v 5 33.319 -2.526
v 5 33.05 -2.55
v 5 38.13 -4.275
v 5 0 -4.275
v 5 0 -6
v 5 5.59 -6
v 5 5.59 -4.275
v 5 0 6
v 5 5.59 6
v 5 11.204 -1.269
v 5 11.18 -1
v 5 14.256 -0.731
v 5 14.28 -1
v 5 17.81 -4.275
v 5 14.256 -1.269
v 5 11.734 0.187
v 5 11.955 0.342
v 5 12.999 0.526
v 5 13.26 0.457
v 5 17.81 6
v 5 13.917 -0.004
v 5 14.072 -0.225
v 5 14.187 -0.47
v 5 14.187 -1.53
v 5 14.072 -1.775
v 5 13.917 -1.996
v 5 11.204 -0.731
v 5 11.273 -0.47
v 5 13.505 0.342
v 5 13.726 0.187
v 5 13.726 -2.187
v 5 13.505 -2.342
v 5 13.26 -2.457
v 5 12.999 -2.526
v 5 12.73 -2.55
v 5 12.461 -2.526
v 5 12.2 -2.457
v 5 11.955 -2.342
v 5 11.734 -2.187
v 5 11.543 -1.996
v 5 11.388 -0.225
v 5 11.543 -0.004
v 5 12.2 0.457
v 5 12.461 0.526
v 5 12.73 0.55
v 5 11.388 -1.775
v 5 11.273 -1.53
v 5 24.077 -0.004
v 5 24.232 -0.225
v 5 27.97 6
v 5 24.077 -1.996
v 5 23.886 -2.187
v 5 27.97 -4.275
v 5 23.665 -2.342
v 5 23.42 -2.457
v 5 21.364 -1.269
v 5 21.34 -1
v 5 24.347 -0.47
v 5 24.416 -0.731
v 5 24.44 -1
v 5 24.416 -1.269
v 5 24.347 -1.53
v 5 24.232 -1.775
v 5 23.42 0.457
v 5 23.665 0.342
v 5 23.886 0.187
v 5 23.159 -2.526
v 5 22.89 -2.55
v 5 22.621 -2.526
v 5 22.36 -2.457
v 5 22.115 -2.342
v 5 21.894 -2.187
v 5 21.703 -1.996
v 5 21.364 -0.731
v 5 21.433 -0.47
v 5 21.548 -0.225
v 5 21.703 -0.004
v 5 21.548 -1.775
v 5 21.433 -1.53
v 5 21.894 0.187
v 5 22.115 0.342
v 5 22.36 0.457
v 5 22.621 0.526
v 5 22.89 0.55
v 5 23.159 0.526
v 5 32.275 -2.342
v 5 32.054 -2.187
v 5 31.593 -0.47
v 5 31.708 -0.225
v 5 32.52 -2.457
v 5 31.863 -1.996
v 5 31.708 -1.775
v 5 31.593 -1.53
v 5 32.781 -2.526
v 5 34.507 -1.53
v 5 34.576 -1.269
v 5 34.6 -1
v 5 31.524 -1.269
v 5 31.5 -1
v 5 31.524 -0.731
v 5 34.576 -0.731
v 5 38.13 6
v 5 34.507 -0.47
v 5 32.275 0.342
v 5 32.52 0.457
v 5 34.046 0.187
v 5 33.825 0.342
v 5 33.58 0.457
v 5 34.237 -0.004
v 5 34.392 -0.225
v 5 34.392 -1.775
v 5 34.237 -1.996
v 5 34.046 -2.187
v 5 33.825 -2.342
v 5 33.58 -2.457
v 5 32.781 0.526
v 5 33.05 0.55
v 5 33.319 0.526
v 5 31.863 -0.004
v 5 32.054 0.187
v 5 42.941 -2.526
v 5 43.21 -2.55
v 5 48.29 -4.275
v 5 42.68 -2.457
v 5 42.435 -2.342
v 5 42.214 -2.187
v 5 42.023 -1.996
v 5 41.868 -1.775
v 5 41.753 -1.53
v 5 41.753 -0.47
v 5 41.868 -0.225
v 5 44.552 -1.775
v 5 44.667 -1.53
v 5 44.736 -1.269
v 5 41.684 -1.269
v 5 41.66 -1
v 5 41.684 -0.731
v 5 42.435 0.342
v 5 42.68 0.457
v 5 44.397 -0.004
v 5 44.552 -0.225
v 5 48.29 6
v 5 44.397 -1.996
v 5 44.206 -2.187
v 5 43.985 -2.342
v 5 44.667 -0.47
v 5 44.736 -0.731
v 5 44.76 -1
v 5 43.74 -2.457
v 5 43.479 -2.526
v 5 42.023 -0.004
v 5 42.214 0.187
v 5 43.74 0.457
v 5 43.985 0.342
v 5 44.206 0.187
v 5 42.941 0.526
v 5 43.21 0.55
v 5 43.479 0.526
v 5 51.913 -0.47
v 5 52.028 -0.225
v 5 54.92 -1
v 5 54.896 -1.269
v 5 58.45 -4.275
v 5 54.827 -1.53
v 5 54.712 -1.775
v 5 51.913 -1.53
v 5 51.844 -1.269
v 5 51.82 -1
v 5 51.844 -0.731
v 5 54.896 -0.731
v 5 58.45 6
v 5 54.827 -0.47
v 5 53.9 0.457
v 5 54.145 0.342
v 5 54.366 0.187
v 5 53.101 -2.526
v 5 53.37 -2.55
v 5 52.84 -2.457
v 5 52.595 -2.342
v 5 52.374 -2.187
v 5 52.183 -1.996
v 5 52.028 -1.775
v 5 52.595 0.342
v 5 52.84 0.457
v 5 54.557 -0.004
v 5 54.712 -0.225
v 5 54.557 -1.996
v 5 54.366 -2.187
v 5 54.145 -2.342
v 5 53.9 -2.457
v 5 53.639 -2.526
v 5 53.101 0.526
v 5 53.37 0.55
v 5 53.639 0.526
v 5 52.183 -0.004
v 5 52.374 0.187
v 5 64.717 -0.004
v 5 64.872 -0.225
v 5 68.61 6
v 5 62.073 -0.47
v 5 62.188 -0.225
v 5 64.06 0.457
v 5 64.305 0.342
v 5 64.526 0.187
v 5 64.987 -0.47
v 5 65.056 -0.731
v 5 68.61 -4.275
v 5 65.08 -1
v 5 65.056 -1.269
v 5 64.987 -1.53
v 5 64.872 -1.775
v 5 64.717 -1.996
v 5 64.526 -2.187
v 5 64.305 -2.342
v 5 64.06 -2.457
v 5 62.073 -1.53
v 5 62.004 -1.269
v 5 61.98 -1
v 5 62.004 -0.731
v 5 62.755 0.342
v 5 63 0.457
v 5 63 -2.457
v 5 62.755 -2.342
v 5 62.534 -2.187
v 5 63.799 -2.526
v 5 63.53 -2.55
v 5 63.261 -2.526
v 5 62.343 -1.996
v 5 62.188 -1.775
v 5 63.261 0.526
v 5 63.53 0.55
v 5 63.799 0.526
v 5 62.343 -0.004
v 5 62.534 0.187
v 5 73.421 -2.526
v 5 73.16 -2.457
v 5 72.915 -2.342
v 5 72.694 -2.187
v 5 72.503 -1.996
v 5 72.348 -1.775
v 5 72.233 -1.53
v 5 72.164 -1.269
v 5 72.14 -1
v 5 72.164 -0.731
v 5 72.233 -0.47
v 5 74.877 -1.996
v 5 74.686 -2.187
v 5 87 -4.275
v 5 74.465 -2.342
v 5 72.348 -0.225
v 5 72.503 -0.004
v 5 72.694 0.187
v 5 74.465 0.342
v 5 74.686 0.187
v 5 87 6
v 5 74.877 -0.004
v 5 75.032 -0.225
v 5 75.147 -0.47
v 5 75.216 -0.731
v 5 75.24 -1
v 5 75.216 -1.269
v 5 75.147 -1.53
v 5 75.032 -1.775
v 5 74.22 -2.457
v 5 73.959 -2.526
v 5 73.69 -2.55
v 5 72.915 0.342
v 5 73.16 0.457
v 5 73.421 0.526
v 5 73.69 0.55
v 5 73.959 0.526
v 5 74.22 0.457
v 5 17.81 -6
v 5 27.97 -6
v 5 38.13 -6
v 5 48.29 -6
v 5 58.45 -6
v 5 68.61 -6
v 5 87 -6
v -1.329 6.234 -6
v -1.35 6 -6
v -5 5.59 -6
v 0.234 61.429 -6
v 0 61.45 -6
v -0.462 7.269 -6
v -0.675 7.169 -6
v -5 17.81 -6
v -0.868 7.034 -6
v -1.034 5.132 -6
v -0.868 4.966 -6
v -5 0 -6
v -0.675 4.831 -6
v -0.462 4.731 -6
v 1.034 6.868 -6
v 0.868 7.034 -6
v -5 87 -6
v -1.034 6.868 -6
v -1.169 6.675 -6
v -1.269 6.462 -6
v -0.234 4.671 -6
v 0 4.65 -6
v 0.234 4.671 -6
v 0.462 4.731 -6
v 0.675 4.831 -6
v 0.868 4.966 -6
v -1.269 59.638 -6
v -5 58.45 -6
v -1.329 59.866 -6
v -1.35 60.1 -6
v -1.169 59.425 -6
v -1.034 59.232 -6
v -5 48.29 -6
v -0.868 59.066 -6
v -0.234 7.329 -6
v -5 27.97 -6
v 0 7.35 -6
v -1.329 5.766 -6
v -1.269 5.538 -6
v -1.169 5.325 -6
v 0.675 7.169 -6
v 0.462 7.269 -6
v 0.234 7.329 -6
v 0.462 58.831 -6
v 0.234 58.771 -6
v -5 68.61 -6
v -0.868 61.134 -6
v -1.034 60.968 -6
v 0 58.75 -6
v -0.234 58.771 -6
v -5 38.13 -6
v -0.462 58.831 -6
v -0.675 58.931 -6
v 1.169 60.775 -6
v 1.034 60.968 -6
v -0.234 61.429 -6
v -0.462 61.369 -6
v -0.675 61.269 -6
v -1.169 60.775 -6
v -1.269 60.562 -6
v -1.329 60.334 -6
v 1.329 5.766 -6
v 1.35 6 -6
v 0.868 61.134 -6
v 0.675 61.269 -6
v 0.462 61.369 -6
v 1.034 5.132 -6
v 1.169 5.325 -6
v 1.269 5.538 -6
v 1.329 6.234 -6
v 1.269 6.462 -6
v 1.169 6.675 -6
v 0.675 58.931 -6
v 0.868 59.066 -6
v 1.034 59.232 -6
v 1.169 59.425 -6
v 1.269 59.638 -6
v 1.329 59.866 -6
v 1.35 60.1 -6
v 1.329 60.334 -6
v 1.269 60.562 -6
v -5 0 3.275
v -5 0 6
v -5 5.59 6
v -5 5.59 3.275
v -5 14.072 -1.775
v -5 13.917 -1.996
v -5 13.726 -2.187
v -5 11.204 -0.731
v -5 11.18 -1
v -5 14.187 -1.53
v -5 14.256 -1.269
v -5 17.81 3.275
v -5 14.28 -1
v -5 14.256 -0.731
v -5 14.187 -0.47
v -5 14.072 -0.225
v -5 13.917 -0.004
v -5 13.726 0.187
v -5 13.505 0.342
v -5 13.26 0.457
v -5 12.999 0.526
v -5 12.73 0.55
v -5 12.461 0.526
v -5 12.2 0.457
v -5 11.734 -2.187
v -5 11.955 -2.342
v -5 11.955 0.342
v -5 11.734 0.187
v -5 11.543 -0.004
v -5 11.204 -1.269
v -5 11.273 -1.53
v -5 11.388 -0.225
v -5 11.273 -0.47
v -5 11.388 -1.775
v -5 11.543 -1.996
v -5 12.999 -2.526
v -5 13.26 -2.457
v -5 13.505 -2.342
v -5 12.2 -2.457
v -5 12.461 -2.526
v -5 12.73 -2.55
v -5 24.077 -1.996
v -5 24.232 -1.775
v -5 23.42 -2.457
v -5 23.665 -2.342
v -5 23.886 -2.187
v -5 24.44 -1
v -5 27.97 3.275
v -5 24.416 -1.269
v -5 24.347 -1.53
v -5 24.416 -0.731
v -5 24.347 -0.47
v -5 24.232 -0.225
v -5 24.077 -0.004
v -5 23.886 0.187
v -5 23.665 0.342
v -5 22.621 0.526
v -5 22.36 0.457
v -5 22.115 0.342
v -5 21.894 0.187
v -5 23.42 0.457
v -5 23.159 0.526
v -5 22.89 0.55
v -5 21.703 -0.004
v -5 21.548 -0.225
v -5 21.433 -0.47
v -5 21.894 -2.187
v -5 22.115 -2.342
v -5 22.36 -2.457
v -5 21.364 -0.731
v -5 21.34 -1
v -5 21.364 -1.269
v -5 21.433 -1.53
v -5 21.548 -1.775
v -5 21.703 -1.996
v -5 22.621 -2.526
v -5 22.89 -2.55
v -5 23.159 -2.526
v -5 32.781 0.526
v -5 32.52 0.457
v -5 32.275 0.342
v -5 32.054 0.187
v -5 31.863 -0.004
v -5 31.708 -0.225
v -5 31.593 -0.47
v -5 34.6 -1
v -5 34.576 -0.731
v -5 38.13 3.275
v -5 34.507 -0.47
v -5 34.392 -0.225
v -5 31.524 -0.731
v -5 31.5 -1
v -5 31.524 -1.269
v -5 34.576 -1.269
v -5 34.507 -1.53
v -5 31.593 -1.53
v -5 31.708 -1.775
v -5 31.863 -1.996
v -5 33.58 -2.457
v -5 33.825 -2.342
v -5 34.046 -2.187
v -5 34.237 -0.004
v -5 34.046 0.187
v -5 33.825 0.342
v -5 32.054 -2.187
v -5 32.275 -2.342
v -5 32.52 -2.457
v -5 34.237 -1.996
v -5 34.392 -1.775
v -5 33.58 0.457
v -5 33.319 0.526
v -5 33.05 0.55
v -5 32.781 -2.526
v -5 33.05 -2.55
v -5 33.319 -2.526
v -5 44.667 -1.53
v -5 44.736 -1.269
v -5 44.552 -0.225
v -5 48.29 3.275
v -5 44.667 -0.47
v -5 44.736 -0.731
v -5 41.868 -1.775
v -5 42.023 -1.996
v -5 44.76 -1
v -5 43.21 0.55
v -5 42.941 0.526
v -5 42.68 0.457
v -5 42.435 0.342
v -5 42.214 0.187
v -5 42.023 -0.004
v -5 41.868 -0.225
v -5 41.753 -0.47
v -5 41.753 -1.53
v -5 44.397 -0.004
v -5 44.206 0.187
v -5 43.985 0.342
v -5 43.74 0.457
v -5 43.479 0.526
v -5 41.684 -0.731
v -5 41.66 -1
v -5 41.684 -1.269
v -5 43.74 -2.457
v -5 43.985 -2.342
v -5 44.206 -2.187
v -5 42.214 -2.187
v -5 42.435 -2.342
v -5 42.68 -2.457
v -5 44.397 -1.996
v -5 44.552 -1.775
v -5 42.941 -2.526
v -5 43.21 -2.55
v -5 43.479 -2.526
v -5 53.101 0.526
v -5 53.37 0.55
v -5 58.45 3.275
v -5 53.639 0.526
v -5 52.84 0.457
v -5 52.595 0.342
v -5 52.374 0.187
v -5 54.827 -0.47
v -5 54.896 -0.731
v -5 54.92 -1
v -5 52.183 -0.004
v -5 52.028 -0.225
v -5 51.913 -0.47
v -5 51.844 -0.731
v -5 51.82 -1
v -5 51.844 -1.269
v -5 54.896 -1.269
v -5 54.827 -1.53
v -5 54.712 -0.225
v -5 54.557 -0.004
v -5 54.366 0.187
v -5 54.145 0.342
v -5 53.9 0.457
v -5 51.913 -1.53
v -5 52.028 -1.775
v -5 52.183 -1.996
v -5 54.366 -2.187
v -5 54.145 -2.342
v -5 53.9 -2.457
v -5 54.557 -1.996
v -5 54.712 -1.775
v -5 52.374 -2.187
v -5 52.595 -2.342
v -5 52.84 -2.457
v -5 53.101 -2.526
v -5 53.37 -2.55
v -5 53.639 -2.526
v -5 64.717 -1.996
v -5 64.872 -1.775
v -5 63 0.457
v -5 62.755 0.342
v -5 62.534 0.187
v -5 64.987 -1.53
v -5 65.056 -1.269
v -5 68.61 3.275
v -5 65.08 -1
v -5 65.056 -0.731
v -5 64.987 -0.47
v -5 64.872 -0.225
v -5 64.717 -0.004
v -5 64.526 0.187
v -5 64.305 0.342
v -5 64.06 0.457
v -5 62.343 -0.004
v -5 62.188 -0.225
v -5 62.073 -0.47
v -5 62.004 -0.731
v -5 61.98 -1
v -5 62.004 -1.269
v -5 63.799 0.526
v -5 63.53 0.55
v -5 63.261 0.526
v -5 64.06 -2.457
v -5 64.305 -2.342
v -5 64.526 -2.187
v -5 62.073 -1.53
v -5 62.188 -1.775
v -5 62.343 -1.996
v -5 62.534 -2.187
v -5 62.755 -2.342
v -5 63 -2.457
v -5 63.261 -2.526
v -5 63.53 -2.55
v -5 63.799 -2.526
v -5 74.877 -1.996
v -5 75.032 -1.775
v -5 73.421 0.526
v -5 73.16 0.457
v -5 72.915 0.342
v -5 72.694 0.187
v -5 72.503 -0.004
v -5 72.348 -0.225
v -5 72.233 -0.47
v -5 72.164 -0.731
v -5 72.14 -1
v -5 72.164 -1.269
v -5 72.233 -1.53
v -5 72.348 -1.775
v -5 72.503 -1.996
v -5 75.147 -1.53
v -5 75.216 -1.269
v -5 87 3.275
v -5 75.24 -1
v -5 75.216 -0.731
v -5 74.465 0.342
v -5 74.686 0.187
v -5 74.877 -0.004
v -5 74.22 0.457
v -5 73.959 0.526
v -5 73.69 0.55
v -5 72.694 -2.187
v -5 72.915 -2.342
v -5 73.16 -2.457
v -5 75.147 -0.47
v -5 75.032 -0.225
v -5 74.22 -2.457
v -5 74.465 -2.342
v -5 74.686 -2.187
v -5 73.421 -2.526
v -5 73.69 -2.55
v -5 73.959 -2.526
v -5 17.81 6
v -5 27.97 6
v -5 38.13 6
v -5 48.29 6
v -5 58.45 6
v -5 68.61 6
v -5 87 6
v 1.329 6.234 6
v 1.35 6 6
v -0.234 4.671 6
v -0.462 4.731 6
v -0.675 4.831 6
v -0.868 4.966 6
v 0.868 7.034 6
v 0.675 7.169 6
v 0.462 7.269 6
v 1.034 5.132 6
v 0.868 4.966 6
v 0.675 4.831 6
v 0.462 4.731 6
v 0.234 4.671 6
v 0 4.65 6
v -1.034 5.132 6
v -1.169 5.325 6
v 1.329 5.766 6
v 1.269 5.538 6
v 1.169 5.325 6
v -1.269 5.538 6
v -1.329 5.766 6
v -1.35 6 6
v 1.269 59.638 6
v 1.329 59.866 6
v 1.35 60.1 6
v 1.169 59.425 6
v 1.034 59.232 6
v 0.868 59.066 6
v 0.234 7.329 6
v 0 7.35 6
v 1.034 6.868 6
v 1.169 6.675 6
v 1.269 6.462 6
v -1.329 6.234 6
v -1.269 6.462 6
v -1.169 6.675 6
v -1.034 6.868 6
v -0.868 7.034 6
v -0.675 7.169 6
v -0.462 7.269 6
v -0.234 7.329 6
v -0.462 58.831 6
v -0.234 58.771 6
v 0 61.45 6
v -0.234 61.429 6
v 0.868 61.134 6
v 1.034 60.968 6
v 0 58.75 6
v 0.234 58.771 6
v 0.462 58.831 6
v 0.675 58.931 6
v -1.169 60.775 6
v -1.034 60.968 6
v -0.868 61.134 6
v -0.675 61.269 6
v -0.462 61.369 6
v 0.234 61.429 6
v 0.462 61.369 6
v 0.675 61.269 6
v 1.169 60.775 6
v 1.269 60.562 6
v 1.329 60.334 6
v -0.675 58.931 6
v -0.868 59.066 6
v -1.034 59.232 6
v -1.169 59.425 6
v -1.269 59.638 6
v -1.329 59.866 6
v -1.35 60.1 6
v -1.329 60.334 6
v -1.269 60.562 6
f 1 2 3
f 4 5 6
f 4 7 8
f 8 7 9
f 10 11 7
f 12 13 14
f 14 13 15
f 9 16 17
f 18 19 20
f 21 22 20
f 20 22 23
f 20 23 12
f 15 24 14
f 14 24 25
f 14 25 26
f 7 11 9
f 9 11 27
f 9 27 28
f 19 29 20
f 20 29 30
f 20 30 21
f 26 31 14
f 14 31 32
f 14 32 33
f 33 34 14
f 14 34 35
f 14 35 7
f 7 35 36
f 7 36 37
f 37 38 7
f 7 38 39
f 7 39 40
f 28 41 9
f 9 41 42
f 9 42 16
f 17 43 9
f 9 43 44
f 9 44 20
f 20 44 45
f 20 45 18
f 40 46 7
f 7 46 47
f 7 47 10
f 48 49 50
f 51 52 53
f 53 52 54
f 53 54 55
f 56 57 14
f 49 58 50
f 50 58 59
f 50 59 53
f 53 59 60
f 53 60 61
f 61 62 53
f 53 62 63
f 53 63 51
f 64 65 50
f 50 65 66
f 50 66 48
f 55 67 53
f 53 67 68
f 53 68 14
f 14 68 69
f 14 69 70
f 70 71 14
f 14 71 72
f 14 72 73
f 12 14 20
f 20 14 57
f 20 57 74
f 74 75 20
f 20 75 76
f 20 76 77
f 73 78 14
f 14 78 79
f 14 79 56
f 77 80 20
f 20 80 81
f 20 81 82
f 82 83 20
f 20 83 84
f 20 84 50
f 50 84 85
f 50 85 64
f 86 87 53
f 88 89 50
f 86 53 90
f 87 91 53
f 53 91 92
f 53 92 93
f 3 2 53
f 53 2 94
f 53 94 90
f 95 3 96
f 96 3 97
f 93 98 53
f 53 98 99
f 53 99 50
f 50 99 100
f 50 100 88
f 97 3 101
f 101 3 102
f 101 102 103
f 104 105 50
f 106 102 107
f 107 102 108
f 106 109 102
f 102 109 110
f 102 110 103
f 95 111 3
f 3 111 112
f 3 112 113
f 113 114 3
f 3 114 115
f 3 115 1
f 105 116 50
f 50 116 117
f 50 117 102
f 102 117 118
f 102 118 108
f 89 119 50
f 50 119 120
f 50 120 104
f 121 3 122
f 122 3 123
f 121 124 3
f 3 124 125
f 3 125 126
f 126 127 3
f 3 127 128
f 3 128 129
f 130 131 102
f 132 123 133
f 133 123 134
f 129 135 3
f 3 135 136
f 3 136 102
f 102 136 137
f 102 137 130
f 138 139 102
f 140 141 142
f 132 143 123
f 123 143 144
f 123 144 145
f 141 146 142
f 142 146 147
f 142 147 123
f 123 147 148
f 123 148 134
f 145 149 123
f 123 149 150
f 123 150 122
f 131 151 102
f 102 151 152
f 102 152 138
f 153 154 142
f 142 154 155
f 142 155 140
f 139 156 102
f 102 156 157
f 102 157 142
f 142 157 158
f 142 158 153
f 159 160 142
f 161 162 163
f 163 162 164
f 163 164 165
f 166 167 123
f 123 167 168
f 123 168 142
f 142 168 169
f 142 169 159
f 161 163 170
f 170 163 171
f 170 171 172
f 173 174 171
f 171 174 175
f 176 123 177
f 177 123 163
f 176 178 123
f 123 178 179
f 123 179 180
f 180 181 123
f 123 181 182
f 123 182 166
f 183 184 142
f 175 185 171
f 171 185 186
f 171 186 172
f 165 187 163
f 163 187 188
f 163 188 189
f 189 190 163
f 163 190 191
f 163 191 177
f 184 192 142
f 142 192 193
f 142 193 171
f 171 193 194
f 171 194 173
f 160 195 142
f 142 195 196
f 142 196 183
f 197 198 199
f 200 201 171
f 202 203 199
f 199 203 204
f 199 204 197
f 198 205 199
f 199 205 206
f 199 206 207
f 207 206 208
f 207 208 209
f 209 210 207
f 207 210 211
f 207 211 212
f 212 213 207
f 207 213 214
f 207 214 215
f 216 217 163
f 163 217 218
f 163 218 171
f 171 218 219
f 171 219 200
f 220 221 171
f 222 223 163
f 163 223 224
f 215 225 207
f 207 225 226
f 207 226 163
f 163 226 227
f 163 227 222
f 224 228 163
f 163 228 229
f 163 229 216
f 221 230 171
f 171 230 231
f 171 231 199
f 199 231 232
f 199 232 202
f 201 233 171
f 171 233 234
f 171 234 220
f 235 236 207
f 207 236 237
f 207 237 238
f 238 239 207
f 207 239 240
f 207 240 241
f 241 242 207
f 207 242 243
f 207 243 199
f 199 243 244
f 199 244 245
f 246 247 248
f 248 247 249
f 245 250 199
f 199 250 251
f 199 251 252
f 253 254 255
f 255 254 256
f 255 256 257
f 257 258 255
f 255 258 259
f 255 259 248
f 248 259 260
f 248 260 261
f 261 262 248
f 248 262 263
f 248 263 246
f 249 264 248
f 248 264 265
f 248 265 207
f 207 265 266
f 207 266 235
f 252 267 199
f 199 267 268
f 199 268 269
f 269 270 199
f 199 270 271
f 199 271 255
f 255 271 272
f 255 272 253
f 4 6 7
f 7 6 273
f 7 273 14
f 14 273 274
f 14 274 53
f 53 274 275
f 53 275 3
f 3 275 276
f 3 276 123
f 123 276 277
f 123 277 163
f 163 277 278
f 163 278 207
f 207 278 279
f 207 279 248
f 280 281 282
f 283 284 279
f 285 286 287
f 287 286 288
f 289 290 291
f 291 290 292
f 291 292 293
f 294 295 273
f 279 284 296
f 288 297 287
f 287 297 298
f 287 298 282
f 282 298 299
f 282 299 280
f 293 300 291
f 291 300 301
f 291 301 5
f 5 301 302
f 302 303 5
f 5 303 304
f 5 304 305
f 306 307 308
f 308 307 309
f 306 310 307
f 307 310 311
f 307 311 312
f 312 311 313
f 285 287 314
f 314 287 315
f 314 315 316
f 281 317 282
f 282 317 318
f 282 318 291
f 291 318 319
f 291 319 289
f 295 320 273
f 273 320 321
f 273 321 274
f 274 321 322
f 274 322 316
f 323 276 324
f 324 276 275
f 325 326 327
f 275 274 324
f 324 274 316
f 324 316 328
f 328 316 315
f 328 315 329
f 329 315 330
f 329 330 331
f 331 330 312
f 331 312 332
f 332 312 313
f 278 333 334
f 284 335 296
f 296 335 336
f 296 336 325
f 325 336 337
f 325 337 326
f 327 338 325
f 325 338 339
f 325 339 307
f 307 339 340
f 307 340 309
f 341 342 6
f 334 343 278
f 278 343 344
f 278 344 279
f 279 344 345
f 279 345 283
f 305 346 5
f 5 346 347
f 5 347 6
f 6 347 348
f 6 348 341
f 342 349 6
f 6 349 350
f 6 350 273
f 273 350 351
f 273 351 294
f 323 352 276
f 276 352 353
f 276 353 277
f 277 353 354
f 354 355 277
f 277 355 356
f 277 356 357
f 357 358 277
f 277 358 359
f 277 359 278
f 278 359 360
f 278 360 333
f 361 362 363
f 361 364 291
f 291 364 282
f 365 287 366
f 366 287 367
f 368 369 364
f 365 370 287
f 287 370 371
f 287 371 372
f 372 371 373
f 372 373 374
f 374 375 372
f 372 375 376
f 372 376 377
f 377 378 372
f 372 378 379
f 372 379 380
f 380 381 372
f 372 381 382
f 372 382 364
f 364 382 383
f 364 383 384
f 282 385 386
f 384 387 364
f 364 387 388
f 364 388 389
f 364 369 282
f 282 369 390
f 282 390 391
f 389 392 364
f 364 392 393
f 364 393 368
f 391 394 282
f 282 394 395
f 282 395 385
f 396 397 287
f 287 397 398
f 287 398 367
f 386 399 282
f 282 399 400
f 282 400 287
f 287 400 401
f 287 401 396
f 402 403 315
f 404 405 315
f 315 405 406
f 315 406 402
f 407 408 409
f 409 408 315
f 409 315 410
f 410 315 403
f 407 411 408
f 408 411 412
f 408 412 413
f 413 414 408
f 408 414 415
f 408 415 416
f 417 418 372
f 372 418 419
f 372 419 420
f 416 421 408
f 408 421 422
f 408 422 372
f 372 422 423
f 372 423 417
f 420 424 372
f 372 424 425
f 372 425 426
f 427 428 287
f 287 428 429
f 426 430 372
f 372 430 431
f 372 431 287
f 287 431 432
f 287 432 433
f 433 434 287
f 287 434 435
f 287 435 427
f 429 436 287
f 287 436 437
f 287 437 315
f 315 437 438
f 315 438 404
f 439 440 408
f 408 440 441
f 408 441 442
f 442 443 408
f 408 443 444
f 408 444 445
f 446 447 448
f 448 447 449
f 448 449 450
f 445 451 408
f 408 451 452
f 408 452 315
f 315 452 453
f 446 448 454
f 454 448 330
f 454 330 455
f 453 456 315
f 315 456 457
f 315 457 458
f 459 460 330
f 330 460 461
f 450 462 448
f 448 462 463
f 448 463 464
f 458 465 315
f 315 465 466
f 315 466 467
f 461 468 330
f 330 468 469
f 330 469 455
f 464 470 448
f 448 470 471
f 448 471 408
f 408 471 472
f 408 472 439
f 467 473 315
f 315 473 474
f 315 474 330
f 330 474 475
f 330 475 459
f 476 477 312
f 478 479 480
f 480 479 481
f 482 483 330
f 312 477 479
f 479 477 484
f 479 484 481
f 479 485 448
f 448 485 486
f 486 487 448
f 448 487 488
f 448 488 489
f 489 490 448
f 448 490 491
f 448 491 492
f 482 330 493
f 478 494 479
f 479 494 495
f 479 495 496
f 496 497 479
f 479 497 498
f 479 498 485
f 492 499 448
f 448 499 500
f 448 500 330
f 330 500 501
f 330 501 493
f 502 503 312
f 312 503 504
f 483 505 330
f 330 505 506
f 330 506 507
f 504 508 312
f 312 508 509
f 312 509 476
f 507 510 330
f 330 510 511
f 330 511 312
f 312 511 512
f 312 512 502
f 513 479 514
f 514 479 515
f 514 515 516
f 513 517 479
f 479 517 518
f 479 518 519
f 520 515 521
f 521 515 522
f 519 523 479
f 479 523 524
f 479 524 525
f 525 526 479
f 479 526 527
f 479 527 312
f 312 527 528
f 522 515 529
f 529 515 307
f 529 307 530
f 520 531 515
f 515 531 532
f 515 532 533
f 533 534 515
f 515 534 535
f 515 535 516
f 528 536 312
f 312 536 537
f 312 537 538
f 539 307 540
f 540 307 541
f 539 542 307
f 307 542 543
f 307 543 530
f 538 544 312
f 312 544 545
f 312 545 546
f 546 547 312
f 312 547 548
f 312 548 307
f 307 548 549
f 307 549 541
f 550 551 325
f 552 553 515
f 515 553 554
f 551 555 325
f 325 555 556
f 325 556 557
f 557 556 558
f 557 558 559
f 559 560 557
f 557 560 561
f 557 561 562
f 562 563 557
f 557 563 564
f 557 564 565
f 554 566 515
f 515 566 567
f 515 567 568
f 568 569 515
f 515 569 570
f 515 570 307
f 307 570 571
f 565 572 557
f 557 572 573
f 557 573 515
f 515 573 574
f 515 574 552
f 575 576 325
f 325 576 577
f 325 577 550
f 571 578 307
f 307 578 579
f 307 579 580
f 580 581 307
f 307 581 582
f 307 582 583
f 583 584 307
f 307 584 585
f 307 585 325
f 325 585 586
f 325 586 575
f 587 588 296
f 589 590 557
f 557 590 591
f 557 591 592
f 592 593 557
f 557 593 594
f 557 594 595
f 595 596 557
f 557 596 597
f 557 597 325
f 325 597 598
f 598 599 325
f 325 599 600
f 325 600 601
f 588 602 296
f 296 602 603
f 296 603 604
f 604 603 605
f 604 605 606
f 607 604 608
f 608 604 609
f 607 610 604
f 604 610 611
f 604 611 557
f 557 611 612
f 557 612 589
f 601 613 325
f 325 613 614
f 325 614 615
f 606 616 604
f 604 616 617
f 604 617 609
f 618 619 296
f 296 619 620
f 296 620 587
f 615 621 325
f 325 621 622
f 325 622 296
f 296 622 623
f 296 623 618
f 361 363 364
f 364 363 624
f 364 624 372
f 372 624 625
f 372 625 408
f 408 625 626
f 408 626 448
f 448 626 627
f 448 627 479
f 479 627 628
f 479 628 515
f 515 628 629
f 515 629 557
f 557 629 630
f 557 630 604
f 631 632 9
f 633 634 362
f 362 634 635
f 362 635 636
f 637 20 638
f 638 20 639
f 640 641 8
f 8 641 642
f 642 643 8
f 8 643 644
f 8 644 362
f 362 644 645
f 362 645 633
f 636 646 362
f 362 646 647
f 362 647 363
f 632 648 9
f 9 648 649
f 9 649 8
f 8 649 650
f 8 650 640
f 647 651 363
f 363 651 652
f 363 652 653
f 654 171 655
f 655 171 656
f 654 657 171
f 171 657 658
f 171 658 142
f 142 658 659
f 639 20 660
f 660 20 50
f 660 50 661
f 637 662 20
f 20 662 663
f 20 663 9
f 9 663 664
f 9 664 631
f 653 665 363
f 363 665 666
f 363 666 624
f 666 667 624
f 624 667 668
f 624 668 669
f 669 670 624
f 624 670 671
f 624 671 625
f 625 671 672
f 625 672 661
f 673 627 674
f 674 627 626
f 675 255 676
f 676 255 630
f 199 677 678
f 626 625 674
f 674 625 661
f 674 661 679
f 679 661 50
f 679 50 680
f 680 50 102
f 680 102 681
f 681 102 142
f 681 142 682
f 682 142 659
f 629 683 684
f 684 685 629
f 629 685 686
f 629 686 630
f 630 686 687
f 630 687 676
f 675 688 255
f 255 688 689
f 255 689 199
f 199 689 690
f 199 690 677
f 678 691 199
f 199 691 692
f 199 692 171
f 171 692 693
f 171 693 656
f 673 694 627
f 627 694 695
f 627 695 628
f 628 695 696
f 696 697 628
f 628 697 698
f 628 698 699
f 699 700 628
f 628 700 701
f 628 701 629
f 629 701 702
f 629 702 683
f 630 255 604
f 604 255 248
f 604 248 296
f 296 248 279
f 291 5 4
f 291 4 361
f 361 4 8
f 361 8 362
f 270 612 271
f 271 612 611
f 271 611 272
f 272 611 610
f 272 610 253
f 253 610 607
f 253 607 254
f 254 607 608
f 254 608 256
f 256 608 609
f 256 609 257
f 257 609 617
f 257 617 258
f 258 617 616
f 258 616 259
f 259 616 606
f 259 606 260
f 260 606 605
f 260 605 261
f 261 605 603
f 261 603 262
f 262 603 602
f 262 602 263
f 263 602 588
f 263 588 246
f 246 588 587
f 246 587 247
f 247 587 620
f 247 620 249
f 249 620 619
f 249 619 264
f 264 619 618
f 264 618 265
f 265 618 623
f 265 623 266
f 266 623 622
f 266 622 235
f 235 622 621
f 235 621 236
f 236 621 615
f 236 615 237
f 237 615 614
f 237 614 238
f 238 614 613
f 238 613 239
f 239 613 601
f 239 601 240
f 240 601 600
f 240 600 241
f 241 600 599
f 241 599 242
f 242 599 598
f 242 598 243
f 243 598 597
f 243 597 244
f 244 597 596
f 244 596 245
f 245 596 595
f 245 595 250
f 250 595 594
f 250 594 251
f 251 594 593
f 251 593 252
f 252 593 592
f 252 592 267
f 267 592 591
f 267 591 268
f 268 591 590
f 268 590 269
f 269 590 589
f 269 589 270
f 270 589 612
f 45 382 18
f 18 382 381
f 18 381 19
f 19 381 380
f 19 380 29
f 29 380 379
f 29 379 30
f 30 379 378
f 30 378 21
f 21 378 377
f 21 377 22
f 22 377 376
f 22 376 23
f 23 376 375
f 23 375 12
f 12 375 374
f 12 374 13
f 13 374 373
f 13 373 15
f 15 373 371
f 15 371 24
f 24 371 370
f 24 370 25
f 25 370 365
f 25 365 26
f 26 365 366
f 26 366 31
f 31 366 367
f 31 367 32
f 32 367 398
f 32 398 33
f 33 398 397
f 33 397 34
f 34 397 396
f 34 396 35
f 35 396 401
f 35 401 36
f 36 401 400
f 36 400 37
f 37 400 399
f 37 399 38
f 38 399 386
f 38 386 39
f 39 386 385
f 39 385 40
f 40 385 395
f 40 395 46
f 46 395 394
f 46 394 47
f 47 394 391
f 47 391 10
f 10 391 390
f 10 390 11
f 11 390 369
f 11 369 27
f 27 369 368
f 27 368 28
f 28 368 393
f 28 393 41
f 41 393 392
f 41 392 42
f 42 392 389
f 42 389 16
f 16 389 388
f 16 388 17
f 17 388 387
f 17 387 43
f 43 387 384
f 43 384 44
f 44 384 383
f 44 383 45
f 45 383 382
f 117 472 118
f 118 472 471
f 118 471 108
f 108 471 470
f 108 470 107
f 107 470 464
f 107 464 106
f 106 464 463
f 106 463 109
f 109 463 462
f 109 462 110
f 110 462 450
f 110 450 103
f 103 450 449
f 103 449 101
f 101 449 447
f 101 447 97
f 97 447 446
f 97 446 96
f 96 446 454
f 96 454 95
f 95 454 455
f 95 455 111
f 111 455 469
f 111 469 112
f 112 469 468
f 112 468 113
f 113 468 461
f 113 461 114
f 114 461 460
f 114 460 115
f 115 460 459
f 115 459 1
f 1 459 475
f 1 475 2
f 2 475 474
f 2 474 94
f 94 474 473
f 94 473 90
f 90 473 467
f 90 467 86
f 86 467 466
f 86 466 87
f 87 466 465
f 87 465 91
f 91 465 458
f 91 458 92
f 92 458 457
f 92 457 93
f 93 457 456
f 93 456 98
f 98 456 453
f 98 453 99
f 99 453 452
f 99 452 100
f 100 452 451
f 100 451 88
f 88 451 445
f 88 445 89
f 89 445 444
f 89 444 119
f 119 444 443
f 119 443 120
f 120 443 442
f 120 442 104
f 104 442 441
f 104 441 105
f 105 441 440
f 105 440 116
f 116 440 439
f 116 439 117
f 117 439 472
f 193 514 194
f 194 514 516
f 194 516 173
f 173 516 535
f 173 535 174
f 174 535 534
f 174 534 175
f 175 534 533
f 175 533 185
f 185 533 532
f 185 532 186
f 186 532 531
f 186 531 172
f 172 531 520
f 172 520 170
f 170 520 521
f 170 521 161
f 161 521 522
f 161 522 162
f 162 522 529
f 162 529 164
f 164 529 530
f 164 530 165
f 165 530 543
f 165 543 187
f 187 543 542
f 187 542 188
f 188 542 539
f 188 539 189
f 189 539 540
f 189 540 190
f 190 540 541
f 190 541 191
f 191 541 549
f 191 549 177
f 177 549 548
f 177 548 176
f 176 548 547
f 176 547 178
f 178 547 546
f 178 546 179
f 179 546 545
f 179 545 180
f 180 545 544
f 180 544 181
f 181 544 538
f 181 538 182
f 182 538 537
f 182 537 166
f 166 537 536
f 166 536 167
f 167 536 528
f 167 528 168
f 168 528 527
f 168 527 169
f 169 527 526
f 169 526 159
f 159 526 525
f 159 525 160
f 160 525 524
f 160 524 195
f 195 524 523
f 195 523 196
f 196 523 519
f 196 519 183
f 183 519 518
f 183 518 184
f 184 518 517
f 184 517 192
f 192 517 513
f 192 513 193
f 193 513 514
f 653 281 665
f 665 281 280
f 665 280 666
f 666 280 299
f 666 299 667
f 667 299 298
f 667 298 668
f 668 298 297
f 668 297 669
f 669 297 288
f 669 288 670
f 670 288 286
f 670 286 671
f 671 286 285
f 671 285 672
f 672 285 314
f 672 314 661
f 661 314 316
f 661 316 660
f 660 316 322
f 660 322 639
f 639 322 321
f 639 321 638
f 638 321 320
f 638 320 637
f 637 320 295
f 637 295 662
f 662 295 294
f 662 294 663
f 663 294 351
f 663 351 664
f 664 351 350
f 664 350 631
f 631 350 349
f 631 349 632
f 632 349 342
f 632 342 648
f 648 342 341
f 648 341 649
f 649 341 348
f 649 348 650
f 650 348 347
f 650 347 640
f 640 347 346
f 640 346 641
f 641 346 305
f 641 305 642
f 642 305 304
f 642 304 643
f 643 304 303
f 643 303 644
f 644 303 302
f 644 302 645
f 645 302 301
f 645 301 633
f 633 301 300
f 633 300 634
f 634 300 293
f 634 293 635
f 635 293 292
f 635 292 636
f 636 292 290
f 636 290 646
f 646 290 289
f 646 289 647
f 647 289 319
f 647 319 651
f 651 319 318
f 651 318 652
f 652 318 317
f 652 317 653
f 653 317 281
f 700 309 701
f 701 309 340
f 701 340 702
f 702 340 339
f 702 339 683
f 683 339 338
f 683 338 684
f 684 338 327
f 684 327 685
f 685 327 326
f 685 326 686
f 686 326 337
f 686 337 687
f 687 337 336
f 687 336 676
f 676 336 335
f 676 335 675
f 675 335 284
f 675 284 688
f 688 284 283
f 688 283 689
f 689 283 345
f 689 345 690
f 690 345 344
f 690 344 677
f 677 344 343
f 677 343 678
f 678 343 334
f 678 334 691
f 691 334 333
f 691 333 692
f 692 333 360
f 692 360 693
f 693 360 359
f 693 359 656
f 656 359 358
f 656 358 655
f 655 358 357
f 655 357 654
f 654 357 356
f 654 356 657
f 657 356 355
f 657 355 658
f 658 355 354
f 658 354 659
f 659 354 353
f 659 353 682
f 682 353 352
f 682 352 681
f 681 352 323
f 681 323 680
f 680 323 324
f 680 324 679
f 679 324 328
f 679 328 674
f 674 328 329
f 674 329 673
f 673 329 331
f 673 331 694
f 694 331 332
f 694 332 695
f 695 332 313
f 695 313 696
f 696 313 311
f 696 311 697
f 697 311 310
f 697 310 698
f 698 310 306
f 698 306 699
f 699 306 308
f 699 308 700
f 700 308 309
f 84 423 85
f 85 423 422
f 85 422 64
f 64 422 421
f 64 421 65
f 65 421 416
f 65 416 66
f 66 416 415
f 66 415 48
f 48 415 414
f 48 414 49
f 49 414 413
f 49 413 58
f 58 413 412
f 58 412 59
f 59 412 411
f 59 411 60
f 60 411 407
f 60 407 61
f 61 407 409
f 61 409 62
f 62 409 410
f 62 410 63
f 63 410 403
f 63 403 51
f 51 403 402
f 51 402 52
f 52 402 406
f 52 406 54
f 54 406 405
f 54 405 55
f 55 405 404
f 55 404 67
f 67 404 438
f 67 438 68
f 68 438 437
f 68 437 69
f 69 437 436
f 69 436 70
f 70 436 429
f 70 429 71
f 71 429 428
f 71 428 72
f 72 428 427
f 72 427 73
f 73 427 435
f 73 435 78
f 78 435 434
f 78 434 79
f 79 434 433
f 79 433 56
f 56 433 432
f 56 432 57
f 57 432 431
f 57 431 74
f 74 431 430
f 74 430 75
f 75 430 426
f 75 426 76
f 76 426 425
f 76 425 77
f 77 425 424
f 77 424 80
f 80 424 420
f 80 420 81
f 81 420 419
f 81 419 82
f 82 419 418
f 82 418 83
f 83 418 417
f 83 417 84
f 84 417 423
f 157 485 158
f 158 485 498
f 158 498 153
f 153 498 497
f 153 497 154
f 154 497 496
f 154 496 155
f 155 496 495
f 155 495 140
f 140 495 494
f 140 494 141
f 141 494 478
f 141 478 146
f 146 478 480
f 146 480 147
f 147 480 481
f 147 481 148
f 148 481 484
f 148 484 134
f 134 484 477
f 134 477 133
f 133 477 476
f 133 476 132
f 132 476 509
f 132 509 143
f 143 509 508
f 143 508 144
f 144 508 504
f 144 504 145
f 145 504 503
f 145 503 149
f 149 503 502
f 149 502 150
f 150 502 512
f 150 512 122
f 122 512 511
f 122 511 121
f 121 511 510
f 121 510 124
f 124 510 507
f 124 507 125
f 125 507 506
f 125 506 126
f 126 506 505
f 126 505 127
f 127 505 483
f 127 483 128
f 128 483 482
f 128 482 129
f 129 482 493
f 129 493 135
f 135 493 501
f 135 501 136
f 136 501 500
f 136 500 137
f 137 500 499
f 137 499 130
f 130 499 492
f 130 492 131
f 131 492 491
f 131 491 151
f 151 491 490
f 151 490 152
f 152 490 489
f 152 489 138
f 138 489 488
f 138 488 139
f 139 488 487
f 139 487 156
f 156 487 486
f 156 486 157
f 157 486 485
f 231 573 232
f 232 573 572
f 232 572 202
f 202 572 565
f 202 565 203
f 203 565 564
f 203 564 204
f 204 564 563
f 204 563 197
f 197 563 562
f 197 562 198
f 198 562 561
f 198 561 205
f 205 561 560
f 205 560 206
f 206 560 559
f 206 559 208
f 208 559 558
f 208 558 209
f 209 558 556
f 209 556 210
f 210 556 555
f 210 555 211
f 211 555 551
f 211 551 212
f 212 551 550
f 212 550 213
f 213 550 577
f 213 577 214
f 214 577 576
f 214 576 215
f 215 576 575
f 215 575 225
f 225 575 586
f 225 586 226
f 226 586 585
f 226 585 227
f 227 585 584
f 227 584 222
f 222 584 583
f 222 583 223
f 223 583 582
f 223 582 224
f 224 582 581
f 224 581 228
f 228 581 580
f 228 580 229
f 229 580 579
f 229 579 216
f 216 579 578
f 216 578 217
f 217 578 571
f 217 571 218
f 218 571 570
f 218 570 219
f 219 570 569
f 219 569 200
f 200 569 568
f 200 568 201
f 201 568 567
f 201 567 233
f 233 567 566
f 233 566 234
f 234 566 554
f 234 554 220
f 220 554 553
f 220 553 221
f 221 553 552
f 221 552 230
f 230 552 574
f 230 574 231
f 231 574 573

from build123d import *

# Parameters (mm, degrees)
SKETCH_1_W                  = 12
SKETCH_1_H                  = 87
EXTRUDE_1_DEPTH             = 10
HOLE_WIZARD_3_1_3_1_1_D     = 3.1
HOLE_WIZARD_3_1_3_1_1_DEPTH = 10
HOLE_WIZARD_2_7_2_7_1_D     = 2.7
HOLE_WIZARD_2_7_2_7_1_DEPTH = 12


with BuildPart() as part:
    # 草圖1 → 填料-伸長1 (new body)
    with BuildSketch(Plane(origin=(5, 0, 0), x_dir=(0, 0, -1), z_dir=(1, 0, 0))):
        with Locations((0, 43.5)):
            Rectangle(SKETCH_1_W, SKETCH_1_H)
    extrude(amount=-EXTRUDE_1_DEPTH)

    # Ø3.1 (3.1) 直徑孔1
    with Locations(Plane(origin=(5, 0, 0), x_dir=(0, 0, -1), z_dir=(1, 0, 0))):
        with Locations((1, 63.53), (1, 43.21), (1, 22.89), (1, 53.37), (1, 33.05), (1, 12.73), (1, 73.69)):
            Hole(HOLE_WIZARD_3_1_3_1_1_D / 2, depth=HOLE_WIZARD_3_1_3_1_1_DEPTH)

    # Ø2.7 (2.7) 直徑孔1
    with Locations(Plane.XY.offset(6)):
        with Locations((0, 60.1), (0, 6)):
            Hole(HOLE_WIZARD_2_7_2_7_1_D / 2, depth=HOLE_WIZARD_2_7_2_7_1_DEPTH)


solid = part.part
